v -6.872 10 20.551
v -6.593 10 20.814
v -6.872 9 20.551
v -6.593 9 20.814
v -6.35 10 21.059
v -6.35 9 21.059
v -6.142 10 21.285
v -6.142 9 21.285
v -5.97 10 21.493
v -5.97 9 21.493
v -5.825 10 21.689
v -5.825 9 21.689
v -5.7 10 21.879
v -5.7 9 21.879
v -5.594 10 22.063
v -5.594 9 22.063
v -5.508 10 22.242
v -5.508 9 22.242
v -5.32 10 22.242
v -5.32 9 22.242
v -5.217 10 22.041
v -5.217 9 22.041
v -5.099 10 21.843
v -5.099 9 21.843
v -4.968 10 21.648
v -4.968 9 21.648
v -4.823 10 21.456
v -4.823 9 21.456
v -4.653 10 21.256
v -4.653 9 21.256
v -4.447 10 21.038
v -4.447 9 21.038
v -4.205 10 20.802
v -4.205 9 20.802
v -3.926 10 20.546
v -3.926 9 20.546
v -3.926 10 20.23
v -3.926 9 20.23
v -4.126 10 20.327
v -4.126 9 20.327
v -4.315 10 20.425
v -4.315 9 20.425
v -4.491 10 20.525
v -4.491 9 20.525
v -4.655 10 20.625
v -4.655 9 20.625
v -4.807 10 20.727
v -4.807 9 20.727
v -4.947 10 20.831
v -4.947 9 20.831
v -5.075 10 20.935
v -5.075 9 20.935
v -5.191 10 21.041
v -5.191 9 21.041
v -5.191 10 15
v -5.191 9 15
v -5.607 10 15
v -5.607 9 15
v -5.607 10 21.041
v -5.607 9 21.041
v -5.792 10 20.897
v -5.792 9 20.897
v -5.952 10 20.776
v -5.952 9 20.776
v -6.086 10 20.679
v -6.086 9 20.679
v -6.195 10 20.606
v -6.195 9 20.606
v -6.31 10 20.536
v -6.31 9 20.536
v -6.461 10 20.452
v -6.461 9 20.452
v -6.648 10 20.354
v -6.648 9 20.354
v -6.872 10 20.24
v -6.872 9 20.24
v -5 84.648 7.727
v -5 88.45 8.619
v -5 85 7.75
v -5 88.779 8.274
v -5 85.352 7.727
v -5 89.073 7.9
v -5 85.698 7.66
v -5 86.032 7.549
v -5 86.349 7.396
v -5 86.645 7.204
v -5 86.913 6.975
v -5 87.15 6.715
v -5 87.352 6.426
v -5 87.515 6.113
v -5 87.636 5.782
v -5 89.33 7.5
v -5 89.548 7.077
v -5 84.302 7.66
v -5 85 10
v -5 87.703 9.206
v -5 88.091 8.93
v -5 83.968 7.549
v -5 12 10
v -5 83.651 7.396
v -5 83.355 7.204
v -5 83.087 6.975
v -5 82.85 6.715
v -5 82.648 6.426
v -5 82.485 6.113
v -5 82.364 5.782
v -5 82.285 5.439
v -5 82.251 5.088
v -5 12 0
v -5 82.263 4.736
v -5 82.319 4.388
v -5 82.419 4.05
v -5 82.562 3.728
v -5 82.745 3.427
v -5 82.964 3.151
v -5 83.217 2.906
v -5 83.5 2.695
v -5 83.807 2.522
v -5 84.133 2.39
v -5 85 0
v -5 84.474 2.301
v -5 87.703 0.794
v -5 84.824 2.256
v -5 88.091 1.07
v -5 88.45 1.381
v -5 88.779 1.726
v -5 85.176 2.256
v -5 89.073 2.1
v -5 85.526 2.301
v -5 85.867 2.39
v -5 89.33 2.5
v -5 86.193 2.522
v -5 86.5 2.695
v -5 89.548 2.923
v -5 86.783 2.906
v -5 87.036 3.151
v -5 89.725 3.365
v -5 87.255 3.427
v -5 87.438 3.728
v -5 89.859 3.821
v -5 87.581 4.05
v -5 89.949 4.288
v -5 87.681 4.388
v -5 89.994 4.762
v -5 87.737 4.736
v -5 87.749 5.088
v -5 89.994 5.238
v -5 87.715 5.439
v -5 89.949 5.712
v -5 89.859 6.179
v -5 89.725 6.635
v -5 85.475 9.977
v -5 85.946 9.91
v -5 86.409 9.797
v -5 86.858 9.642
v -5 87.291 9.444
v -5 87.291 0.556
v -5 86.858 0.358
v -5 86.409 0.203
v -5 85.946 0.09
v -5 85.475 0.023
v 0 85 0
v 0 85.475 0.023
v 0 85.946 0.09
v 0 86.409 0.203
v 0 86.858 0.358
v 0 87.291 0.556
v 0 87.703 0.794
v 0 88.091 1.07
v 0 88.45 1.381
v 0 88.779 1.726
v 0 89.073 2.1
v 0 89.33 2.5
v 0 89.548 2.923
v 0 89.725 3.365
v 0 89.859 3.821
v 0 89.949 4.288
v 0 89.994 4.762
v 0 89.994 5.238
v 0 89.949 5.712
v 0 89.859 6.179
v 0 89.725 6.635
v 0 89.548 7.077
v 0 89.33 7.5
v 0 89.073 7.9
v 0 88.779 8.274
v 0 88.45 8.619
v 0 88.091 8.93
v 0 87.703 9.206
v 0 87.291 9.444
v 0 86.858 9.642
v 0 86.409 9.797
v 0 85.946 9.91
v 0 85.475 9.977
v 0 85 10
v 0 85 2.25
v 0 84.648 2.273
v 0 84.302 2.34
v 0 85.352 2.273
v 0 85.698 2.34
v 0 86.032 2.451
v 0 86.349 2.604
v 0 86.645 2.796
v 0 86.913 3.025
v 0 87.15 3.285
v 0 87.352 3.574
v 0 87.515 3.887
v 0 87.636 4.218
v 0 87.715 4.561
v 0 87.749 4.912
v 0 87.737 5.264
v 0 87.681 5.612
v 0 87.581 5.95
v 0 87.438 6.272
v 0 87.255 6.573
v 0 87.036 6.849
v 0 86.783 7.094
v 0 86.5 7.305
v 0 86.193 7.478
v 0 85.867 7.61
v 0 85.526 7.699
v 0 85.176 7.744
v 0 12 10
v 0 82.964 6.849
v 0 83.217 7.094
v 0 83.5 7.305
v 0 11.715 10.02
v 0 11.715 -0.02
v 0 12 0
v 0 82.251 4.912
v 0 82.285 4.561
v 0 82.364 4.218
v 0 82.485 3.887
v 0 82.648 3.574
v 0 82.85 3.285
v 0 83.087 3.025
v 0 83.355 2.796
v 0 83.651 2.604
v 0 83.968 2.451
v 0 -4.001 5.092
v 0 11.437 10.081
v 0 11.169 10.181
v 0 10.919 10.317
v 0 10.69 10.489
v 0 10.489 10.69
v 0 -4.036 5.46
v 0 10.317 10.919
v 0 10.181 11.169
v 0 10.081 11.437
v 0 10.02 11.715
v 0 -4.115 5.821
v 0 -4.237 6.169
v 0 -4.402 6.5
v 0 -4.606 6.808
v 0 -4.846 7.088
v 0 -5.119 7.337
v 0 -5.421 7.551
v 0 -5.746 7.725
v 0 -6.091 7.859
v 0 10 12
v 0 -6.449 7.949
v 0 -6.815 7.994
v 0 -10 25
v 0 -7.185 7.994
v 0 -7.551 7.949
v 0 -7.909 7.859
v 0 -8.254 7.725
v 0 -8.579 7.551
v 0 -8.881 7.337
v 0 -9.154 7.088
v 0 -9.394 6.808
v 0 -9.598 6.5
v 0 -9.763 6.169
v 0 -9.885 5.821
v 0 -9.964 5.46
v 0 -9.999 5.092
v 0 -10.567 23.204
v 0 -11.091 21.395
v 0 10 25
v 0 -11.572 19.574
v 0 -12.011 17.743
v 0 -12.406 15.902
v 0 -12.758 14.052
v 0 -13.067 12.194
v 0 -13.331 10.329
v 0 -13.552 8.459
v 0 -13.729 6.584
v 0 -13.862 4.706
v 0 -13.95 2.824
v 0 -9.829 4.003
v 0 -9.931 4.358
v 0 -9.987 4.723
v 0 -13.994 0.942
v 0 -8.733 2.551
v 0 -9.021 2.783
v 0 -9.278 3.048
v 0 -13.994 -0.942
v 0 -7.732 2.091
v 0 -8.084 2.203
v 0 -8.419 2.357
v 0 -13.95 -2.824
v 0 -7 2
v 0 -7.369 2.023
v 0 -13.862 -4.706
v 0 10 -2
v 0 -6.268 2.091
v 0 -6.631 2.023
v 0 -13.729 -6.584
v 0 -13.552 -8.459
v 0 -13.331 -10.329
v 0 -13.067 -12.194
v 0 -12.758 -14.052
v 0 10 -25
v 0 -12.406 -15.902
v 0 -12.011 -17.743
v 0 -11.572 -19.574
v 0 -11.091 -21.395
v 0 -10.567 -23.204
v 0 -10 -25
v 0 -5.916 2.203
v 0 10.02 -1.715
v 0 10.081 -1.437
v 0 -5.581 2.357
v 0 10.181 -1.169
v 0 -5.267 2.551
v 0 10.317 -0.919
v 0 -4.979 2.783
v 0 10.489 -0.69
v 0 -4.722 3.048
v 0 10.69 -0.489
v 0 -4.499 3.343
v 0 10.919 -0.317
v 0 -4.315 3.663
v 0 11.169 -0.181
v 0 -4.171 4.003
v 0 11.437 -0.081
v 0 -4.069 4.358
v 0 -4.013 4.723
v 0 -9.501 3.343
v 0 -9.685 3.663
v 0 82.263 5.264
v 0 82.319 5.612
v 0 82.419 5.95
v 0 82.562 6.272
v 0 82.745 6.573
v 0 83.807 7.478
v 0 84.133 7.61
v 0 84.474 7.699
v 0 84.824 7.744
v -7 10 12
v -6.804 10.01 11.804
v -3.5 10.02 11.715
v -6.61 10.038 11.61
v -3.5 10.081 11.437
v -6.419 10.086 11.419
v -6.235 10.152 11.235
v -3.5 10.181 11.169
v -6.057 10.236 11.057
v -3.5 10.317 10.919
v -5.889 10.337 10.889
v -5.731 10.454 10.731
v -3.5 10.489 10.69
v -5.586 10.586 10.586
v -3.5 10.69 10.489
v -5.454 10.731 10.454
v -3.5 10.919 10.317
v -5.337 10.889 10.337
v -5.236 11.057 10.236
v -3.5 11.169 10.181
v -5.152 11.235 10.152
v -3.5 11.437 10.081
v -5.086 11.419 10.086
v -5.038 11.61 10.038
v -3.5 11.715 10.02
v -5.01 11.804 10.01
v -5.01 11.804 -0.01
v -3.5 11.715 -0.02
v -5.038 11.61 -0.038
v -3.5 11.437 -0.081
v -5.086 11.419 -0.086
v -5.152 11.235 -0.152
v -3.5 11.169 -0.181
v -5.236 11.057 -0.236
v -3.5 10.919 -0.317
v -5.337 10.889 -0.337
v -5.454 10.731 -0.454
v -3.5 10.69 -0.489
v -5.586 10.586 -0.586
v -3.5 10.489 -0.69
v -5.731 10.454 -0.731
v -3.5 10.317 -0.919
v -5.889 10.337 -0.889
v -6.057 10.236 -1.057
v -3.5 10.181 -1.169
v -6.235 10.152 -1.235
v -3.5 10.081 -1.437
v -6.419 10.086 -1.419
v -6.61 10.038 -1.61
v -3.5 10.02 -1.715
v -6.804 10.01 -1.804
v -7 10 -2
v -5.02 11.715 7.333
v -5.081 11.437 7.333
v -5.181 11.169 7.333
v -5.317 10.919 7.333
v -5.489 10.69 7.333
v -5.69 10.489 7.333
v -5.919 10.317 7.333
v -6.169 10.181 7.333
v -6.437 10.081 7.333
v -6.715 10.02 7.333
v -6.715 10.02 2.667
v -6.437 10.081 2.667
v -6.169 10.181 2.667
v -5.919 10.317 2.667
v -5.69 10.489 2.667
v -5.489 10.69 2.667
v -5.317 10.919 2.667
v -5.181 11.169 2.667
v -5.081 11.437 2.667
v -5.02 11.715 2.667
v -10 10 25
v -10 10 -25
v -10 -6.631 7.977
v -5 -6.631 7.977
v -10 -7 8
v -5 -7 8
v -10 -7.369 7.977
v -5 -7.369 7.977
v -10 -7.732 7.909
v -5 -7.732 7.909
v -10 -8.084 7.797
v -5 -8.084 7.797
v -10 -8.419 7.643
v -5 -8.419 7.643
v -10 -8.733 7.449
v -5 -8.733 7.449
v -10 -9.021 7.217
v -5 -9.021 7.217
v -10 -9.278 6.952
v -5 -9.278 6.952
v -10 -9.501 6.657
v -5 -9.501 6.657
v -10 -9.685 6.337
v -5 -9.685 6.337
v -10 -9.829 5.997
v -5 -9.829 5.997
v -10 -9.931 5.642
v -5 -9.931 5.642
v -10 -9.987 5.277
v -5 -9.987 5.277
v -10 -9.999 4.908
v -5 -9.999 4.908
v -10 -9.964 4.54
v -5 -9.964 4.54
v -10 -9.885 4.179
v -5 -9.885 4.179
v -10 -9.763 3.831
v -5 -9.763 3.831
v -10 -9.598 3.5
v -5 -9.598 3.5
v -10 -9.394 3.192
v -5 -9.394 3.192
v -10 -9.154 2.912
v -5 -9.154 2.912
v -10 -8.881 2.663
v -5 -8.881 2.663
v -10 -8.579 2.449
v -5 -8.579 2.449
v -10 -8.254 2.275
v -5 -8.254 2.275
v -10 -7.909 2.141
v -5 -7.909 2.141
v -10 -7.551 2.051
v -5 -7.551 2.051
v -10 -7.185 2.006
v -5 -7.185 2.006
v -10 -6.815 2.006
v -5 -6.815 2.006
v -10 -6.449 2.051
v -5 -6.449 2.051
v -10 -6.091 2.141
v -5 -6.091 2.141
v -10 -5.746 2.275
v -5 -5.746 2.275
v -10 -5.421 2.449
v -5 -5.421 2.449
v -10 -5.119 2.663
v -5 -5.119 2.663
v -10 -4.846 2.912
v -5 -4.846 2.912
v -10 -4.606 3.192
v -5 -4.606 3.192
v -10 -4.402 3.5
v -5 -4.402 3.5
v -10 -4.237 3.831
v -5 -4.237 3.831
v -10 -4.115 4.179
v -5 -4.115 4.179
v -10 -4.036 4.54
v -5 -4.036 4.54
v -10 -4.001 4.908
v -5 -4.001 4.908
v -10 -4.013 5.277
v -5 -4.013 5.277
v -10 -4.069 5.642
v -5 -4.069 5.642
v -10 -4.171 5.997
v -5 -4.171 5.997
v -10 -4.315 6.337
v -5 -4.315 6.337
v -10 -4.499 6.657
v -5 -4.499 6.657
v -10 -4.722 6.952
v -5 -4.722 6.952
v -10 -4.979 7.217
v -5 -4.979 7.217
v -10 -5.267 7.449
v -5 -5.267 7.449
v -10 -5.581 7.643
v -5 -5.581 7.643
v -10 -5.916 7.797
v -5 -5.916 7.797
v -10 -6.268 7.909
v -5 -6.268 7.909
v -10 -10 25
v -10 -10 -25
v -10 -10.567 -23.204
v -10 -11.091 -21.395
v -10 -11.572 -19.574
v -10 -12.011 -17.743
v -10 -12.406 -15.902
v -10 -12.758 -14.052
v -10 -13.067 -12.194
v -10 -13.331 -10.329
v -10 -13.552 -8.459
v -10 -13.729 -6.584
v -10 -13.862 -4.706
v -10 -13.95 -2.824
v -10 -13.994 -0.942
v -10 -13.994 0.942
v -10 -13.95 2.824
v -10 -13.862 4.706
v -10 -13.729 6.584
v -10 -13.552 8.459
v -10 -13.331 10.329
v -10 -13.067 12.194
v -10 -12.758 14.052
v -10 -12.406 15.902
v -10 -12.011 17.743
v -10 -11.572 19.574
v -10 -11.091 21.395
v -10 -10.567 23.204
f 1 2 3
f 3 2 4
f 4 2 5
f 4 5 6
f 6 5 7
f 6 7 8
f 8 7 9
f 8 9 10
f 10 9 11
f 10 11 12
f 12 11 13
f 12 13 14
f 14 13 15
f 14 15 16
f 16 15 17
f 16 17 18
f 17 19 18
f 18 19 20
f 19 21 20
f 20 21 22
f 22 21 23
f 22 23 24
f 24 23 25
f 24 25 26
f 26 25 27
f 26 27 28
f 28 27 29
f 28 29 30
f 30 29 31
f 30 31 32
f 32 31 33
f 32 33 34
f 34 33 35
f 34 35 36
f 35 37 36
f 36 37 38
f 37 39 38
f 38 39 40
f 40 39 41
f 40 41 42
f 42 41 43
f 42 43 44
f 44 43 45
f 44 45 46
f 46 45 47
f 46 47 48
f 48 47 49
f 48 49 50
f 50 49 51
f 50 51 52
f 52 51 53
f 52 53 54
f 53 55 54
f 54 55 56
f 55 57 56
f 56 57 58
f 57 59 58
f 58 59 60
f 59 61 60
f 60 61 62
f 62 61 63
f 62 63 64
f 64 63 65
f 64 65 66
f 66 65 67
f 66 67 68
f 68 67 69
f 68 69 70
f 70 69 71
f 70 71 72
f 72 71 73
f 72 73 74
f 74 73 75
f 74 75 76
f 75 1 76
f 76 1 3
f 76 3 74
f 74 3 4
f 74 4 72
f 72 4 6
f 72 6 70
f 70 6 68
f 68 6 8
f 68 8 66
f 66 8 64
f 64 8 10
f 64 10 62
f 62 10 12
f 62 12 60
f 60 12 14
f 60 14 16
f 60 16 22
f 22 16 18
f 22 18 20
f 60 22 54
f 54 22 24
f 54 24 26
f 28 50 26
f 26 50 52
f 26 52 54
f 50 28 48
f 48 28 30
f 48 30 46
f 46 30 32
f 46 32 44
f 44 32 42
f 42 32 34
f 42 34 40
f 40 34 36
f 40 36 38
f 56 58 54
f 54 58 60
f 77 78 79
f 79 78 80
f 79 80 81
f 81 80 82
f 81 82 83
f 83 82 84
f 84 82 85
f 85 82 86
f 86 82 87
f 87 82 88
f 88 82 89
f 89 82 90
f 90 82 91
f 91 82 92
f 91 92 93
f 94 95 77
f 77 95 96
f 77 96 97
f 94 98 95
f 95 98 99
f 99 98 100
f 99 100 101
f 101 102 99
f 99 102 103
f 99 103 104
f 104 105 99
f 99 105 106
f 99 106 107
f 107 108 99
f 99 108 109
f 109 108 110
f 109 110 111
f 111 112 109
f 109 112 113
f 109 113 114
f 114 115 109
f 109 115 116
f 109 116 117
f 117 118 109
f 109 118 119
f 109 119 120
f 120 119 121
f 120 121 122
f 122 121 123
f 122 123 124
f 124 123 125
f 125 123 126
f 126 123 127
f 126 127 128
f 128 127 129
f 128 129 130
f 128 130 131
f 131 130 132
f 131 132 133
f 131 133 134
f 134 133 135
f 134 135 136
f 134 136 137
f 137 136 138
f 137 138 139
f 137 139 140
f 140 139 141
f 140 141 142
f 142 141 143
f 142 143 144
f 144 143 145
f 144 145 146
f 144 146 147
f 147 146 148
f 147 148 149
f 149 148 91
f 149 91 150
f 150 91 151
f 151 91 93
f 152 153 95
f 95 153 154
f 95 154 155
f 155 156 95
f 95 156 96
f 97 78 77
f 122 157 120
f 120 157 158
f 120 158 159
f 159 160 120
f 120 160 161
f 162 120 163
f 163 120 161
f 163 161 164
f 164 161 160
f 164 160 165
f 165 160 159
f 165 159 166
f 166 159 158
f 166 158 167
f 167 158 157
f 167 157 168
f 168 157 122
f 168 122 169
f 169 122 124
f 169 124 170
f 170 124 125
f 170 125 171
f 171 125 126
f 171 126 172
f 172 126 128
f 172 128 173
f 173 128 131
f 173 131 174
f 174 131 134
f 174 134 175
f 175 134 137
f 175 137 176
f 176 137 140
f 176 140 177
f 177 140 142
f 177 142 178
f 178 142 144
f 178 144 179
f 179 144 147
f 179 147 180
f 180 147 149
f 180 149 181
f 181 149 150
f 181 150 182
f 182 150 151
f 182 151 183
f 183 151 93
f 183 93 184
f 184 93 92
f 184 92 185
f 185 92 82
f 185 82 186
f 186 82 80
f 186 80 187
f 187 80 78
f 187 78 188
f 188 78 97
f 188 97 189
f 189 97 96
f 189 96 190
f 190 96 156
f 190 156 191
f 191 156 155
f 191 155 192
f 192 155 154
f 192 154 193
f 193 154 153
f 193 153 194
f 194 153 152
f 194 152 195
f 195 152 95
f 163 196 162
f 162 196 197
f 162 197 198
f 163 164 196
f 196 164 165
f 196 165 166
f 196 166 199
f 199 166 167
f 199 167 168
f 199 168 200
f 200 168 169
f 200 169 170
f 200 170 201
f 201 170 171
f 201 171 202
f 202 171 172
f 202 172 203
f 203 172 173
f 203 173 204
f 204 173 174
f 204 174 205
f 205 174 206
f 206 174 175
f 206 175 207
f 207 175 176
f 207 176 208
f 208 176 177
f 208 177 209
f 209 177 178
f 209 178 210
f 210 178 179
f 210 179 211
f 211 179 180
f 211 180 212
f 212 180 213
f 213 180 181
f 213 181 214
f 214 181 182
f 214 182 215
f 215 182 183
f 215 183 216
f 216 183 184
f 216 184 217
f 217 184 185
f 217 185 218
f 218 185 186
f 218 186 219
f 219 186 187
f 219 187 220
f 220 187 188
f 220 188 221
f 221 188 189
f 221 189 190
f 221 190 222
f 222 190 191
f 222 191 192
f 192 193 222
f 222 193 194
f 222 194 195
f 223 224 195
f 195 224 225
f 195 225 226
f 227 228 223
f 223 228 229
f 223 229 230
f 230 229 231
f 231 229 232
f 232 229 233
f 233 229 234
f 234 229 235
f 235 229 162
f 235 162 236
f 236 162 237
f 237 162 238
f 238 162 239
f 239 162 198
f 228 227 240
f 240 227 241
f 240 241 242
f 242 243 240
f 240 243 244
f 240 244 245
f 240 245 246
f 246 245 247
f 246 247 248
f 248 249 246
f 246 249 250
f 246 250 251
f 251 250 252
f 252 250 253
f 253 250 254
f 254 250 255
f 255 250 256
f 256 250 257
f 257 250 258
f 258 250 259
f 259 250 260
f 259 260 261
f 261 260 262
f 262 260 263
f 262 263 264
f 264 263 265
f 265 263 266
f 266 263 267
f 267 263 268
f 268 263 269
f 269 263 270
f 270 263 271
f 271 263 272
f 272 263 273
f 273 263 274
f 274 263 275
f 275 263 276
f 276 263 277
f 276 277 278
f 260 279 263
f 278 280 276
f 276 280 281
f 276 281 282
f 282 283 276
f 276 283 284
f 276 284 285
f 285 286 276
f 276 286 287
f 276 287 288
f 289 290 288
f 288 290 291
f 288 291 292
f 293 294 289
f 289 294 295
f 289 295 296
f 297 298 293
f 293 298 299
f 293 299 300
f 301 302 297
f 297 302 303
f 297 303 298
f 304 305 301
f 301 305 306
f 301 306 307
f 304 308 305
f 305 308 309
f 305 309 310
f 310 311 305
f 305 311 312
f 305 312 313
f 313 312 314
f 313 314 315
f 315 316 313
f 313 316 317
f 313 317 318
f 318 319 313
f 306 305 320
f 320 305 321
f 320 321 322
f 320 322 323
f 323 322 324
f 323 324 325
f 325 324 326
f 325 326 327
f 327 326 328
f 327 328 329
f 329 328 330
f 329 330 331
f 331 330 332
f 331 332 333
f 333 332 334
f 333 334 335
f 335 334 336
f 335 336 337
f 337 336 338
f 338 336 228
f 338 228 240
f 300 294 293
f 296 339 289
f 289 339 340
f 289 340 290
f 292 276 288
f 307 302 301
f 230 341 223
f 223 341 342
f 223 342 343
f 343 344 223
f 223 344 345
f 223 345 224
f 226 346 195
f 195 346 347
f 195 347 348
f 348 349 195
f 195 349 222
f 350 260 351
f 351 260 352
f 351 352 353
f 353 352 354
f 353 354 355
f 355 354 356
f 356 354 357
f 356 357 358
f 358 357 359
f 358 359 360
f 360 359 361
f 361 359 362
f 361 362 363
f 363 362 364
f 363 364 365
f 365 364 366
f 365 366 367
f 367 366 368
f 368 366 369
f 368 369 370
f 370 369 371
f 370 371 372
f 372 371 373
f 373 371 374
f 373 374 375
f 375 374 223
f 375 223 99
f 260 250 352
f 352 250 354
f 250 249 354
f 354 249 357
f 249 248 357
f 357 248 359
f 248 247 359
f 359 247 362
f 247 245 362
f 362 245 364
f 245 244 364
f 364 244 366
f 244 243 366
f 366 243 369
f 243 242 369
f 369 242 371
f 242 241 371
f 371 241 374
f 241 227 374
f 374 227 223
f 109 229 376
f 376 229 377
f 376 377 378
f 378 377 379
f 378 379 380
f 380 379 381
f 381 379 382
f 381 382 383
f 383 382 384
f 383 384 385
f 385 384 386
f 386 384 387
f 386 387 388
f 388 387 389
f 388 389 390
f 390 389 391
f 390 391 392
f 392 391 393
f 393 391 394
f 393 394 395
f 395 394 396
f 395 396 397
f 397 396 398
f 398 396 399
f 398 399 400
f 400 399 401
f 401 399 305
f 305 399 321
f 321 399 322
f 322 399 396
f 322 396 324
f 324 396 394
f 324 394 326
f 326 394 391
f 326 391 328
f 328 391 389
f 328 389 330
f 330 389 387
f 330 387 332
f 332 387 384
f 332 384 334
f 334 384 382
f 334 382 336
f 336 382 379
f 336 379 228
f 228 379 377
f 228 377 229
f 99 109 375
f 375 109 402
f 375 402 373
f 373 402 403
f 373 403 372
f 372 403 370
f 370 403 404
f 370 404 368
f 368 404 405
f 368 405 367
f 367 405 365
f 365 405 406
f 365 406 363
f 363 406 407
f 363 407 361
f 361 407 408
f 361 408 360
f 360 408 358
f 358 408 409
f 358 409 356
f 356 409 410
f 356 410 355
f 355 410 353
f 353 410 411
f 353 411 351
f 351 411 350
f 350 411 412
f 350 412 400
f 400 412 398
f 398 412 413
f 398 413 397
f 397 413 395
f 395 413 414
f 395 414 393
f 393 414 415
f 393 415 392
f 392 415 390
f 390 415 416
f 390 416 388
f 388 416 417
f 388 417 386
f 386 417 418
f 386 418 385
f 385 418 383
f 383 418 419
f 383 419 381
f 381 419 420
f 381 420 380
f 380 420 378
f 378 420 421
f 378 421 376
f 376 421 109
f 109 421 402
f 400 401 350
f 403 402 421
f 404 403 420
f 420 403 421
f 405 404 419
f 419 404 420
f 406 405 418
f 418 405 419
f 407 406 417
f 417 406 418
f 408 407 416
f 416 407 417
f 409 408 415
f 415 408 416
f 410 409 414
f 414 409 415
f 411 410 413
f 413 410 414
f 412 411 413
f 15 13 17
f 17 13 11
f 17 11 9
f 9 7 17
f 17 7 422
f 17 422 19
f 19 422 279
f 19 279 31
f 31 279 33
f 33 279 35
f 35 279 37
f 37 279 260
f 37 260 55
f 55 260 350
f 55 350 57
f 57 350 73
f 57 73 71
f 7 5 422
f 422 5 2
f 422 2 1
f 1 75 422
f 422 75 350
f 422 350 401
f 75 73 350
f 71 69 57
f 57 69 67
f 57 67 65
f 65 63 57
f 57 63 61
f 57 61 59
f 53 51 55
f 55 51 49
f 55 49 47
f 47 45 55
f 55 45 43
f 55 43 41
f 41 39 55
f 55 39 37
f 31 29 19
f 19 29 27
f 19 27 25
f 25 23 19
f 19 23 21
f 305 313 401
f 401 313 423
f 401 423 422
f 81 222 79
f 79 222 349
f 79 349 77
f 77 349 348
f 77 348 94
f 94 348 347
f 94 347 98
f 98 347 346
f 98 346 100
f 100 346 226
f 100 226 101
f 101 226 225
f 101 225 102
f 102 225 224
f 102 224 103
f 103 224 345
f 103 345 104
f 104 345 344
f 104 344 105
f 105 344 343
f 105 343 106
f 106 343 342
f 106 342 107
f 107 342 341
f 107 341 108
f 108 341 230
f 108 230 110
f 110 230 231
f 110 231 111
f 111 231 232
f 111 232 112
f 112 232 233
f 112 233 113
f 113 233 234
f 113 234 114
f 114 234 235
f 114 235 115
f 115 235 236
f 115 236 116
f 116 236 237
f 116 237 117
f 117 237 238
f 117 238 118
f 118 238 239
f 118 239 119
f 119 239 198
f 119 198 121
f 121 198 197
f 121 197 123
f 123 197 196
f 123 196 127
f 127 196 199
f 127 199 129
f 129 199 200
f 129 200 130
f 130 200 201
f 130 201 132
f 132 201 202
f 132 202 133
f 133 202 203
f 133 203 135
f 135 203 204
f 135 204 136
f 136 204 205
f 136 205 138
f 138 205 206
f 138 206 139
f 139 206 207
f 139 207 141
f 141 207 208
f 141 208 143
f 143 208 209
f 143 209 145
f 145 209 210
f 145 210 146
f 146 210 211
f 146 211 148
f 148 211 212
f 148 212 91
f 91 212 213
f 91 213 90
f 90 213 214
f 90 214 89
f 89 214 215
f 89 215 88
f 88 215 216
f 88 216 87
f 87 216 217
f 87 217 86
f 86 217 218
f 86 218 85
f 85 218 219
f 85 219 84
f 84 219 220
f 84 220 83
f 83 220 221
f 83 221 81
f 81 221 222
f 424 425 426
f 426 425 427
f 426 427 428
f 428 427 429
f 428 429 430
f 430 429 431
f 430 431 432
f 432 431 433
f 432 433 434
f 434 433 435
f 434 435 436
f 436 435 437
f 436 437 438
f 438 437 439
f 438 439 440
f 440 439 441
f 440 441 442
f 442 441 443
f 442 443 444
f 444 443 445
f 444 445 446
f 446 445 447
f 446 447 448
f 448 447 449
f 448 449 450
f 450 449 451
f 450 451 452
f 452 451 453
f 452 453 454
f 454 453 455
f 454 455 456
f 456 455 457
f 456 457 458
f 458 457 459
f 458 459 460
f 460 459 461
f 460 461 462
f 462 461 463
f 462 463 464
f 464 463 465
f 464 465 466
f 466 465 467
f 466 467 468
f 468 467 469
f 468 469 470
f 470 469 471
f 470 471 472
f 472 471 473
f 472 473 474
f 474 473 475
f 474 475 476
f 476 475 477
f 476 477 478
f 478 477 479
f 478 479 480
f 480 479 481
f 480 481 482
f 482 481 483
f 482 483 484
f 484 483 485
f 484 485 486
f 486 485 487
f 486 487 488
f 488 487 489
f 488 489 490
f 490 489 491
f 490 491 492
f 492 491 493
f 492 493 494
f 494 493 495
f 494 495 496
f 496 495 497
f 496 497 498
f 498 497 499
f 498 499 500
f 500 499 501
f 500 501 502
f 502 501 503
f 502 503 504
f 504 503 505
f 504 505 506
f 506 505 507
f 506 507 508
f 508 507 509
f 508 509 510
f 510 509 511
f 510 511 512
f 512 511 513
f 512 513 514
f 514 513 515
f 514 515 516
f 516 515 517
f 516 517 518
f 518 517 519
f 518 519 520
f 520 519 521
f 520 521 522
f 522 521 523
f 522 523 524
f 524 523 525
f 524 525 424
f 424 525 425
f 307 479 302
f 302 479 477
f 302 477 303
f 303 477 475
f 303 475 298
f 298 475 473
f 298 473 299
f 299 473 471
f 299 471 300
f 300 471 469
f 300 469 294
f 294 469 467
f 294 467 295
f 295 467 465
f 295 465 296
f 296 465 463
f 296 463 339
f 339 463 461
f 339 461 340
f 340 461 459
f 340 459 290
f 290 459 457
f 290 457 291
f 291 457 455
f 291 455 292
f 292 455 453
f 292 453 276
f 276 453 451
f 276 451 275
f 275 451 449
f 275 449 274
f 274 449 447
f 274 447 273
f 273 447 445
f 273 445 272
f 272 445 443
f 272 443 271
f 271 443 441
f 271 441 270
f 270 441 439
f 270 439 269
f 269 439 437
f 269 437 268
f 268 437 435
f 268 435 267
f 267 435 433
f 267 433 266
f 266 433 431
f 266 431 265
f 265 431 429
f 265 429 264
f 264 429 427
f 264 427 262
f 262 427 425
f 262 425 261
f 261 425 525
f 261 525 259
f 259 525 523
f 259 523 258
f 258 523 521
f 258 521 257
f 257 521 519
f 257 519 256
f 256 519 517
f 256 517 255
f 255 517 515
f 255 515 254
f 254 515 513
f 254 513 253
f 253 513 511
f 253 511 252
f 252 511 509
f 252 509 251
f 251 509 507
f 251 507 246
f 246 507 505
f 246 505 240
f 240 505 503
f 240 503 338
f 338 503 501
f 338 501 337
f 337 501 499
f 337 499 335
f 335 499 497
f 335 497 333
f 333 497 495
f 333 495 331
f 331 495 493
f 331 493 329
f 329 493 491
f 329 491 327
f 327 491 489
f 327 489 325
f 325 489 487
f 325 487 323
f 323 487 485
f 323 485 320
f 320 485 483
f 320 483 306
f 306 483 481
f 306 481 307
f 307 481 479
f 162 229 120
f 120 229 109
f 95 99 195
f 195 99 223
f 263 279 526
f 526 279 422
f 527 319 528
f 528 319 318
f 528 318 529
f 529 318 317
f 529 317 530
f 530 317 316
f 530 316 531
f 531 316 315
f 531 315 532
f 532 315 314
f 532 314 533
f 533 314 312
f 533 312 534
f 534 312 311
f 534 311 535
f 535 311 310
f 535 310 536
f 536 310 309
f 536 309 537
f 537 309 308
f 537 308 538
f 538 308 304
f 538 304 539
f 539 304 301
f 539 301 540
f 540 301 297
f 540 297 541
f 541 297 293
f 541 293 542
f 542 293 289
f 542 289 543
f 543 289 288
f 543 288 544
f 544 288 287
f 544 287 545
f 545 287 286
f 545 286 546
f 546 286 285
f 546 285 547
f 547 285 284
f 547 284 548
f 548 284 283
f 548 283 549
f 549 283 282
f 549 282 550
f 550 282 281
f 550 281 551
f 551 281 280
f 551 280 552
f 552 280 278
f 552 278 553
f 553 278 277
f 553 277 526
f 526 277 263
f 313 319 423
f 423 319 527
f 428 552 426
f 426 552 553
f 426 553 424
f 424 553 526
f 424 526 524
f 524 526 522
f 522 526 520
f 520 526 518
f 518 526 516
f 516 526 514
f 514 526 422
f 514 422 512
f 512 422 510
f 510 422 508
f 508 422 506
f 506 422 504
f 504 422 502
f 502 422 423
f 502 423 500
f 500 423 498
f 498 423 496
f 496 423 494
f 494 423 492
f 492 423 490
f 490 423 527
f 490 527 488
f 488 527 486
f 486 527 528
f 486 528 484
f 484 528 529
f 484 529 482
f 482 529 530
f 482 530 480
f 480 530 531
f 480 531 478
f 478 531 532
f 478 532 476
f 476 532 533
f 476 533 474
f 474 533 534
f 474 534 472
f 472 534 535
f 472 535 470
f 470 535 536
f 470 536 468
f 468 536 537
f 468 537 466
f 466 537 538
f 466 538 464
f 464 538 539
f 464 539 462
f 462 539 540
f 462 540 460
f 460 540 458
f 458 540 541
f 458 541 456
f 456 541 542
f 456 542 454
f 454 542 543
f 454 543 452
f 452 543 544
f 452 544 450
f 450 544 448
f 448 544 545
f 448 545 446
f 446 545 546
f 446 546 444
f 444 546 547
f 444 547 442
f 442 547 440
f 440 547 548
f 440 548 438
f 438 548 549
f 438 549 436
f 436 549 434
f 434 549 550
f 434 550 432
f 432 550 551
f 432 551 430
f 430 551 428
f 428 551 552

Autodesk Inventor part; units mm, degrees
ref_plane "YZ Plane" through (0, 0, 0) normal (1, 0, 0) x (0, 1, 0)
ref_plane "XZ Plane" through (0, 0, 0) normal (0, 1, 0) x (-1, 0, 0)
ref_plane "XY Plane" through (0, 0, 0) normal (0, 0, 1) x (1, 0, 0)
sketch "スケッチ1" plane through (0, 0, 0) normal (1, 0, 0) x (0, 1, 0)
  line L0 (-10, 25) -> (10, 25)
  line L1 (10, 25) -> (10, -25)
  line L2 (10, -25) -> (-10, -25)
  line L3 (-10, -25) -> (-10, 25)
  line L4 (-10, 25) -> (10, -25) construction
  line L5 (10, 25) -> (-10, -25) construction
  line L6 (10, 0) -> (-14, 0)
  arc A0 (-10, 25) -> (-10, -25) centre (66.125, 0) ccw
  point P0 (0, 0)
  dimension "d0" = 20
  dimension "d1" = 50
  dimension "d9" = 24
extrude "押し出し1" add sketch "スケッチ1" against normal blind 10
sketch "スケッチ2" plane through (0, 0, 0) normal (1, 0, 0) x (0, 0, -1)
  line L0 (-25, 10) -> (25, 10) projected
  line L1 (-10, 10) -> (0, 10)
  line L2 (0, 10) -> (0, 90)
  line L3 (0, 90) -> (-10, 90)
  line L4 (-10, 90) -> (-10, 10)
  point P0 (0, 0)
  point P1 (0, 10)
  dimension "d4" = 10
  dimension "d5" = 80
  dimension "d6" = 10
extrude "押し出し2" add sketch "スケッチ2" against normal blind 5
sketch "スケッチ3" plane through (0, 0, 0) normal (1, 0, 0) x (0, 0, -1)
  line L0 (25, 10) -> (0, 10) projected
  point P0 (0, 0)
  point P1 (-5, -7)
  dimension "d12" = 5
  dimension "d13" = 7
hole "穴1" at (0, -7, 5) direction (-1, 0, 0) diameter 6 end through all
sketch "スケッチ4" plane through (0, 0, 0) normal (1, 0, 0) x (0, 0, -1)
  line L0 (0, 90) -> (-10, 90) projected
  line L1 (0, 10) -> (0, 90) projected
  point P0 (0, 0)
  point P1 (-5, 85)
  point P2 (-5, 90)
  dimension "d21" = 5
  dimension "d22" = 5
hole "穴2" at (0, 85, 5) direction (-1, 0, 0) diameter 5.5 end through all
fillet "フィレット1" radius 2 3 edges at (-2.5, 10, 0) (-5, 10, 5) (-2.5, 10, 10)
fillet "フィレット2" radius 5 2 edges at (-2.5, 90, 0) (-2.5, 90, 10)
sketch "スケッチ5" plane through (-10, 10, -25) normal (0, 1, 0) x (1, 0, 0)
  line L0 (2.5, -40) -> (7.5, -40) construction
  line L1 (7.5, -40) -> (7.5, -45) construction
  line L2 (7.5, -45) -> (2.5, -45) construction
  line L3 (2.5, -45) -> (2.5, -40) construction
  line L4 (10, -37) -> (10, -50) projected
  line L5 (10, -50) -> (0, -50) projected
  line L6 (3.1278, -45.5513) -> (3.1278, -45.2399)
  spline S0 degree 2 poles (3.1278, -45.2399) (3.6122, -45.4821) (3.9978, -45.7293) (4.3933, -46.0407) knots 0 0 0 1 2 2 2
  line L7 (4.3933, -46.0407) -> (4.3933, -40)
  line L8 (4.3933, -40) -> (4.8085, -40)
  line L9 (4.8085, -40) -> (4.8085, -46.0407)
  spline S1 degree 2 poles (4.8085, -46.0407) (5.2485, -45.6156) (6.074, -45.23) knots 0 0 0 1 1 1
  line L10 (6.074, -45.23) -> (6.074, -45.5464)
  spline S2 degree 2 poles (6.074, -45.5464) (5.4808, -46.0753) (4.8728, -46.8365) (4.68, -47.2419) knots 0 0 0 1 2 2 2
  line L11 (4.68, -47.2419) -> (4.4921, -47.2419)
  spline S3 degree 2 poles (4.4921, -47.2419) (4.3389, -46.8909) (3.721, -46.0951) (3.1278, -45.5513) knots 0 0 0 1 2 2 2
  point P0 (10, -25)
  point P1 (7.5, -42.5)
  dimension "d34" = 2.5
  dimension "d35" = 5
  dimension "d36" = 5
  dimension "d37" = 5
extrude "押し出し3" cut sketch "スケッチ5" against normal blind 1
properties part number "受動歩行_ver2"
